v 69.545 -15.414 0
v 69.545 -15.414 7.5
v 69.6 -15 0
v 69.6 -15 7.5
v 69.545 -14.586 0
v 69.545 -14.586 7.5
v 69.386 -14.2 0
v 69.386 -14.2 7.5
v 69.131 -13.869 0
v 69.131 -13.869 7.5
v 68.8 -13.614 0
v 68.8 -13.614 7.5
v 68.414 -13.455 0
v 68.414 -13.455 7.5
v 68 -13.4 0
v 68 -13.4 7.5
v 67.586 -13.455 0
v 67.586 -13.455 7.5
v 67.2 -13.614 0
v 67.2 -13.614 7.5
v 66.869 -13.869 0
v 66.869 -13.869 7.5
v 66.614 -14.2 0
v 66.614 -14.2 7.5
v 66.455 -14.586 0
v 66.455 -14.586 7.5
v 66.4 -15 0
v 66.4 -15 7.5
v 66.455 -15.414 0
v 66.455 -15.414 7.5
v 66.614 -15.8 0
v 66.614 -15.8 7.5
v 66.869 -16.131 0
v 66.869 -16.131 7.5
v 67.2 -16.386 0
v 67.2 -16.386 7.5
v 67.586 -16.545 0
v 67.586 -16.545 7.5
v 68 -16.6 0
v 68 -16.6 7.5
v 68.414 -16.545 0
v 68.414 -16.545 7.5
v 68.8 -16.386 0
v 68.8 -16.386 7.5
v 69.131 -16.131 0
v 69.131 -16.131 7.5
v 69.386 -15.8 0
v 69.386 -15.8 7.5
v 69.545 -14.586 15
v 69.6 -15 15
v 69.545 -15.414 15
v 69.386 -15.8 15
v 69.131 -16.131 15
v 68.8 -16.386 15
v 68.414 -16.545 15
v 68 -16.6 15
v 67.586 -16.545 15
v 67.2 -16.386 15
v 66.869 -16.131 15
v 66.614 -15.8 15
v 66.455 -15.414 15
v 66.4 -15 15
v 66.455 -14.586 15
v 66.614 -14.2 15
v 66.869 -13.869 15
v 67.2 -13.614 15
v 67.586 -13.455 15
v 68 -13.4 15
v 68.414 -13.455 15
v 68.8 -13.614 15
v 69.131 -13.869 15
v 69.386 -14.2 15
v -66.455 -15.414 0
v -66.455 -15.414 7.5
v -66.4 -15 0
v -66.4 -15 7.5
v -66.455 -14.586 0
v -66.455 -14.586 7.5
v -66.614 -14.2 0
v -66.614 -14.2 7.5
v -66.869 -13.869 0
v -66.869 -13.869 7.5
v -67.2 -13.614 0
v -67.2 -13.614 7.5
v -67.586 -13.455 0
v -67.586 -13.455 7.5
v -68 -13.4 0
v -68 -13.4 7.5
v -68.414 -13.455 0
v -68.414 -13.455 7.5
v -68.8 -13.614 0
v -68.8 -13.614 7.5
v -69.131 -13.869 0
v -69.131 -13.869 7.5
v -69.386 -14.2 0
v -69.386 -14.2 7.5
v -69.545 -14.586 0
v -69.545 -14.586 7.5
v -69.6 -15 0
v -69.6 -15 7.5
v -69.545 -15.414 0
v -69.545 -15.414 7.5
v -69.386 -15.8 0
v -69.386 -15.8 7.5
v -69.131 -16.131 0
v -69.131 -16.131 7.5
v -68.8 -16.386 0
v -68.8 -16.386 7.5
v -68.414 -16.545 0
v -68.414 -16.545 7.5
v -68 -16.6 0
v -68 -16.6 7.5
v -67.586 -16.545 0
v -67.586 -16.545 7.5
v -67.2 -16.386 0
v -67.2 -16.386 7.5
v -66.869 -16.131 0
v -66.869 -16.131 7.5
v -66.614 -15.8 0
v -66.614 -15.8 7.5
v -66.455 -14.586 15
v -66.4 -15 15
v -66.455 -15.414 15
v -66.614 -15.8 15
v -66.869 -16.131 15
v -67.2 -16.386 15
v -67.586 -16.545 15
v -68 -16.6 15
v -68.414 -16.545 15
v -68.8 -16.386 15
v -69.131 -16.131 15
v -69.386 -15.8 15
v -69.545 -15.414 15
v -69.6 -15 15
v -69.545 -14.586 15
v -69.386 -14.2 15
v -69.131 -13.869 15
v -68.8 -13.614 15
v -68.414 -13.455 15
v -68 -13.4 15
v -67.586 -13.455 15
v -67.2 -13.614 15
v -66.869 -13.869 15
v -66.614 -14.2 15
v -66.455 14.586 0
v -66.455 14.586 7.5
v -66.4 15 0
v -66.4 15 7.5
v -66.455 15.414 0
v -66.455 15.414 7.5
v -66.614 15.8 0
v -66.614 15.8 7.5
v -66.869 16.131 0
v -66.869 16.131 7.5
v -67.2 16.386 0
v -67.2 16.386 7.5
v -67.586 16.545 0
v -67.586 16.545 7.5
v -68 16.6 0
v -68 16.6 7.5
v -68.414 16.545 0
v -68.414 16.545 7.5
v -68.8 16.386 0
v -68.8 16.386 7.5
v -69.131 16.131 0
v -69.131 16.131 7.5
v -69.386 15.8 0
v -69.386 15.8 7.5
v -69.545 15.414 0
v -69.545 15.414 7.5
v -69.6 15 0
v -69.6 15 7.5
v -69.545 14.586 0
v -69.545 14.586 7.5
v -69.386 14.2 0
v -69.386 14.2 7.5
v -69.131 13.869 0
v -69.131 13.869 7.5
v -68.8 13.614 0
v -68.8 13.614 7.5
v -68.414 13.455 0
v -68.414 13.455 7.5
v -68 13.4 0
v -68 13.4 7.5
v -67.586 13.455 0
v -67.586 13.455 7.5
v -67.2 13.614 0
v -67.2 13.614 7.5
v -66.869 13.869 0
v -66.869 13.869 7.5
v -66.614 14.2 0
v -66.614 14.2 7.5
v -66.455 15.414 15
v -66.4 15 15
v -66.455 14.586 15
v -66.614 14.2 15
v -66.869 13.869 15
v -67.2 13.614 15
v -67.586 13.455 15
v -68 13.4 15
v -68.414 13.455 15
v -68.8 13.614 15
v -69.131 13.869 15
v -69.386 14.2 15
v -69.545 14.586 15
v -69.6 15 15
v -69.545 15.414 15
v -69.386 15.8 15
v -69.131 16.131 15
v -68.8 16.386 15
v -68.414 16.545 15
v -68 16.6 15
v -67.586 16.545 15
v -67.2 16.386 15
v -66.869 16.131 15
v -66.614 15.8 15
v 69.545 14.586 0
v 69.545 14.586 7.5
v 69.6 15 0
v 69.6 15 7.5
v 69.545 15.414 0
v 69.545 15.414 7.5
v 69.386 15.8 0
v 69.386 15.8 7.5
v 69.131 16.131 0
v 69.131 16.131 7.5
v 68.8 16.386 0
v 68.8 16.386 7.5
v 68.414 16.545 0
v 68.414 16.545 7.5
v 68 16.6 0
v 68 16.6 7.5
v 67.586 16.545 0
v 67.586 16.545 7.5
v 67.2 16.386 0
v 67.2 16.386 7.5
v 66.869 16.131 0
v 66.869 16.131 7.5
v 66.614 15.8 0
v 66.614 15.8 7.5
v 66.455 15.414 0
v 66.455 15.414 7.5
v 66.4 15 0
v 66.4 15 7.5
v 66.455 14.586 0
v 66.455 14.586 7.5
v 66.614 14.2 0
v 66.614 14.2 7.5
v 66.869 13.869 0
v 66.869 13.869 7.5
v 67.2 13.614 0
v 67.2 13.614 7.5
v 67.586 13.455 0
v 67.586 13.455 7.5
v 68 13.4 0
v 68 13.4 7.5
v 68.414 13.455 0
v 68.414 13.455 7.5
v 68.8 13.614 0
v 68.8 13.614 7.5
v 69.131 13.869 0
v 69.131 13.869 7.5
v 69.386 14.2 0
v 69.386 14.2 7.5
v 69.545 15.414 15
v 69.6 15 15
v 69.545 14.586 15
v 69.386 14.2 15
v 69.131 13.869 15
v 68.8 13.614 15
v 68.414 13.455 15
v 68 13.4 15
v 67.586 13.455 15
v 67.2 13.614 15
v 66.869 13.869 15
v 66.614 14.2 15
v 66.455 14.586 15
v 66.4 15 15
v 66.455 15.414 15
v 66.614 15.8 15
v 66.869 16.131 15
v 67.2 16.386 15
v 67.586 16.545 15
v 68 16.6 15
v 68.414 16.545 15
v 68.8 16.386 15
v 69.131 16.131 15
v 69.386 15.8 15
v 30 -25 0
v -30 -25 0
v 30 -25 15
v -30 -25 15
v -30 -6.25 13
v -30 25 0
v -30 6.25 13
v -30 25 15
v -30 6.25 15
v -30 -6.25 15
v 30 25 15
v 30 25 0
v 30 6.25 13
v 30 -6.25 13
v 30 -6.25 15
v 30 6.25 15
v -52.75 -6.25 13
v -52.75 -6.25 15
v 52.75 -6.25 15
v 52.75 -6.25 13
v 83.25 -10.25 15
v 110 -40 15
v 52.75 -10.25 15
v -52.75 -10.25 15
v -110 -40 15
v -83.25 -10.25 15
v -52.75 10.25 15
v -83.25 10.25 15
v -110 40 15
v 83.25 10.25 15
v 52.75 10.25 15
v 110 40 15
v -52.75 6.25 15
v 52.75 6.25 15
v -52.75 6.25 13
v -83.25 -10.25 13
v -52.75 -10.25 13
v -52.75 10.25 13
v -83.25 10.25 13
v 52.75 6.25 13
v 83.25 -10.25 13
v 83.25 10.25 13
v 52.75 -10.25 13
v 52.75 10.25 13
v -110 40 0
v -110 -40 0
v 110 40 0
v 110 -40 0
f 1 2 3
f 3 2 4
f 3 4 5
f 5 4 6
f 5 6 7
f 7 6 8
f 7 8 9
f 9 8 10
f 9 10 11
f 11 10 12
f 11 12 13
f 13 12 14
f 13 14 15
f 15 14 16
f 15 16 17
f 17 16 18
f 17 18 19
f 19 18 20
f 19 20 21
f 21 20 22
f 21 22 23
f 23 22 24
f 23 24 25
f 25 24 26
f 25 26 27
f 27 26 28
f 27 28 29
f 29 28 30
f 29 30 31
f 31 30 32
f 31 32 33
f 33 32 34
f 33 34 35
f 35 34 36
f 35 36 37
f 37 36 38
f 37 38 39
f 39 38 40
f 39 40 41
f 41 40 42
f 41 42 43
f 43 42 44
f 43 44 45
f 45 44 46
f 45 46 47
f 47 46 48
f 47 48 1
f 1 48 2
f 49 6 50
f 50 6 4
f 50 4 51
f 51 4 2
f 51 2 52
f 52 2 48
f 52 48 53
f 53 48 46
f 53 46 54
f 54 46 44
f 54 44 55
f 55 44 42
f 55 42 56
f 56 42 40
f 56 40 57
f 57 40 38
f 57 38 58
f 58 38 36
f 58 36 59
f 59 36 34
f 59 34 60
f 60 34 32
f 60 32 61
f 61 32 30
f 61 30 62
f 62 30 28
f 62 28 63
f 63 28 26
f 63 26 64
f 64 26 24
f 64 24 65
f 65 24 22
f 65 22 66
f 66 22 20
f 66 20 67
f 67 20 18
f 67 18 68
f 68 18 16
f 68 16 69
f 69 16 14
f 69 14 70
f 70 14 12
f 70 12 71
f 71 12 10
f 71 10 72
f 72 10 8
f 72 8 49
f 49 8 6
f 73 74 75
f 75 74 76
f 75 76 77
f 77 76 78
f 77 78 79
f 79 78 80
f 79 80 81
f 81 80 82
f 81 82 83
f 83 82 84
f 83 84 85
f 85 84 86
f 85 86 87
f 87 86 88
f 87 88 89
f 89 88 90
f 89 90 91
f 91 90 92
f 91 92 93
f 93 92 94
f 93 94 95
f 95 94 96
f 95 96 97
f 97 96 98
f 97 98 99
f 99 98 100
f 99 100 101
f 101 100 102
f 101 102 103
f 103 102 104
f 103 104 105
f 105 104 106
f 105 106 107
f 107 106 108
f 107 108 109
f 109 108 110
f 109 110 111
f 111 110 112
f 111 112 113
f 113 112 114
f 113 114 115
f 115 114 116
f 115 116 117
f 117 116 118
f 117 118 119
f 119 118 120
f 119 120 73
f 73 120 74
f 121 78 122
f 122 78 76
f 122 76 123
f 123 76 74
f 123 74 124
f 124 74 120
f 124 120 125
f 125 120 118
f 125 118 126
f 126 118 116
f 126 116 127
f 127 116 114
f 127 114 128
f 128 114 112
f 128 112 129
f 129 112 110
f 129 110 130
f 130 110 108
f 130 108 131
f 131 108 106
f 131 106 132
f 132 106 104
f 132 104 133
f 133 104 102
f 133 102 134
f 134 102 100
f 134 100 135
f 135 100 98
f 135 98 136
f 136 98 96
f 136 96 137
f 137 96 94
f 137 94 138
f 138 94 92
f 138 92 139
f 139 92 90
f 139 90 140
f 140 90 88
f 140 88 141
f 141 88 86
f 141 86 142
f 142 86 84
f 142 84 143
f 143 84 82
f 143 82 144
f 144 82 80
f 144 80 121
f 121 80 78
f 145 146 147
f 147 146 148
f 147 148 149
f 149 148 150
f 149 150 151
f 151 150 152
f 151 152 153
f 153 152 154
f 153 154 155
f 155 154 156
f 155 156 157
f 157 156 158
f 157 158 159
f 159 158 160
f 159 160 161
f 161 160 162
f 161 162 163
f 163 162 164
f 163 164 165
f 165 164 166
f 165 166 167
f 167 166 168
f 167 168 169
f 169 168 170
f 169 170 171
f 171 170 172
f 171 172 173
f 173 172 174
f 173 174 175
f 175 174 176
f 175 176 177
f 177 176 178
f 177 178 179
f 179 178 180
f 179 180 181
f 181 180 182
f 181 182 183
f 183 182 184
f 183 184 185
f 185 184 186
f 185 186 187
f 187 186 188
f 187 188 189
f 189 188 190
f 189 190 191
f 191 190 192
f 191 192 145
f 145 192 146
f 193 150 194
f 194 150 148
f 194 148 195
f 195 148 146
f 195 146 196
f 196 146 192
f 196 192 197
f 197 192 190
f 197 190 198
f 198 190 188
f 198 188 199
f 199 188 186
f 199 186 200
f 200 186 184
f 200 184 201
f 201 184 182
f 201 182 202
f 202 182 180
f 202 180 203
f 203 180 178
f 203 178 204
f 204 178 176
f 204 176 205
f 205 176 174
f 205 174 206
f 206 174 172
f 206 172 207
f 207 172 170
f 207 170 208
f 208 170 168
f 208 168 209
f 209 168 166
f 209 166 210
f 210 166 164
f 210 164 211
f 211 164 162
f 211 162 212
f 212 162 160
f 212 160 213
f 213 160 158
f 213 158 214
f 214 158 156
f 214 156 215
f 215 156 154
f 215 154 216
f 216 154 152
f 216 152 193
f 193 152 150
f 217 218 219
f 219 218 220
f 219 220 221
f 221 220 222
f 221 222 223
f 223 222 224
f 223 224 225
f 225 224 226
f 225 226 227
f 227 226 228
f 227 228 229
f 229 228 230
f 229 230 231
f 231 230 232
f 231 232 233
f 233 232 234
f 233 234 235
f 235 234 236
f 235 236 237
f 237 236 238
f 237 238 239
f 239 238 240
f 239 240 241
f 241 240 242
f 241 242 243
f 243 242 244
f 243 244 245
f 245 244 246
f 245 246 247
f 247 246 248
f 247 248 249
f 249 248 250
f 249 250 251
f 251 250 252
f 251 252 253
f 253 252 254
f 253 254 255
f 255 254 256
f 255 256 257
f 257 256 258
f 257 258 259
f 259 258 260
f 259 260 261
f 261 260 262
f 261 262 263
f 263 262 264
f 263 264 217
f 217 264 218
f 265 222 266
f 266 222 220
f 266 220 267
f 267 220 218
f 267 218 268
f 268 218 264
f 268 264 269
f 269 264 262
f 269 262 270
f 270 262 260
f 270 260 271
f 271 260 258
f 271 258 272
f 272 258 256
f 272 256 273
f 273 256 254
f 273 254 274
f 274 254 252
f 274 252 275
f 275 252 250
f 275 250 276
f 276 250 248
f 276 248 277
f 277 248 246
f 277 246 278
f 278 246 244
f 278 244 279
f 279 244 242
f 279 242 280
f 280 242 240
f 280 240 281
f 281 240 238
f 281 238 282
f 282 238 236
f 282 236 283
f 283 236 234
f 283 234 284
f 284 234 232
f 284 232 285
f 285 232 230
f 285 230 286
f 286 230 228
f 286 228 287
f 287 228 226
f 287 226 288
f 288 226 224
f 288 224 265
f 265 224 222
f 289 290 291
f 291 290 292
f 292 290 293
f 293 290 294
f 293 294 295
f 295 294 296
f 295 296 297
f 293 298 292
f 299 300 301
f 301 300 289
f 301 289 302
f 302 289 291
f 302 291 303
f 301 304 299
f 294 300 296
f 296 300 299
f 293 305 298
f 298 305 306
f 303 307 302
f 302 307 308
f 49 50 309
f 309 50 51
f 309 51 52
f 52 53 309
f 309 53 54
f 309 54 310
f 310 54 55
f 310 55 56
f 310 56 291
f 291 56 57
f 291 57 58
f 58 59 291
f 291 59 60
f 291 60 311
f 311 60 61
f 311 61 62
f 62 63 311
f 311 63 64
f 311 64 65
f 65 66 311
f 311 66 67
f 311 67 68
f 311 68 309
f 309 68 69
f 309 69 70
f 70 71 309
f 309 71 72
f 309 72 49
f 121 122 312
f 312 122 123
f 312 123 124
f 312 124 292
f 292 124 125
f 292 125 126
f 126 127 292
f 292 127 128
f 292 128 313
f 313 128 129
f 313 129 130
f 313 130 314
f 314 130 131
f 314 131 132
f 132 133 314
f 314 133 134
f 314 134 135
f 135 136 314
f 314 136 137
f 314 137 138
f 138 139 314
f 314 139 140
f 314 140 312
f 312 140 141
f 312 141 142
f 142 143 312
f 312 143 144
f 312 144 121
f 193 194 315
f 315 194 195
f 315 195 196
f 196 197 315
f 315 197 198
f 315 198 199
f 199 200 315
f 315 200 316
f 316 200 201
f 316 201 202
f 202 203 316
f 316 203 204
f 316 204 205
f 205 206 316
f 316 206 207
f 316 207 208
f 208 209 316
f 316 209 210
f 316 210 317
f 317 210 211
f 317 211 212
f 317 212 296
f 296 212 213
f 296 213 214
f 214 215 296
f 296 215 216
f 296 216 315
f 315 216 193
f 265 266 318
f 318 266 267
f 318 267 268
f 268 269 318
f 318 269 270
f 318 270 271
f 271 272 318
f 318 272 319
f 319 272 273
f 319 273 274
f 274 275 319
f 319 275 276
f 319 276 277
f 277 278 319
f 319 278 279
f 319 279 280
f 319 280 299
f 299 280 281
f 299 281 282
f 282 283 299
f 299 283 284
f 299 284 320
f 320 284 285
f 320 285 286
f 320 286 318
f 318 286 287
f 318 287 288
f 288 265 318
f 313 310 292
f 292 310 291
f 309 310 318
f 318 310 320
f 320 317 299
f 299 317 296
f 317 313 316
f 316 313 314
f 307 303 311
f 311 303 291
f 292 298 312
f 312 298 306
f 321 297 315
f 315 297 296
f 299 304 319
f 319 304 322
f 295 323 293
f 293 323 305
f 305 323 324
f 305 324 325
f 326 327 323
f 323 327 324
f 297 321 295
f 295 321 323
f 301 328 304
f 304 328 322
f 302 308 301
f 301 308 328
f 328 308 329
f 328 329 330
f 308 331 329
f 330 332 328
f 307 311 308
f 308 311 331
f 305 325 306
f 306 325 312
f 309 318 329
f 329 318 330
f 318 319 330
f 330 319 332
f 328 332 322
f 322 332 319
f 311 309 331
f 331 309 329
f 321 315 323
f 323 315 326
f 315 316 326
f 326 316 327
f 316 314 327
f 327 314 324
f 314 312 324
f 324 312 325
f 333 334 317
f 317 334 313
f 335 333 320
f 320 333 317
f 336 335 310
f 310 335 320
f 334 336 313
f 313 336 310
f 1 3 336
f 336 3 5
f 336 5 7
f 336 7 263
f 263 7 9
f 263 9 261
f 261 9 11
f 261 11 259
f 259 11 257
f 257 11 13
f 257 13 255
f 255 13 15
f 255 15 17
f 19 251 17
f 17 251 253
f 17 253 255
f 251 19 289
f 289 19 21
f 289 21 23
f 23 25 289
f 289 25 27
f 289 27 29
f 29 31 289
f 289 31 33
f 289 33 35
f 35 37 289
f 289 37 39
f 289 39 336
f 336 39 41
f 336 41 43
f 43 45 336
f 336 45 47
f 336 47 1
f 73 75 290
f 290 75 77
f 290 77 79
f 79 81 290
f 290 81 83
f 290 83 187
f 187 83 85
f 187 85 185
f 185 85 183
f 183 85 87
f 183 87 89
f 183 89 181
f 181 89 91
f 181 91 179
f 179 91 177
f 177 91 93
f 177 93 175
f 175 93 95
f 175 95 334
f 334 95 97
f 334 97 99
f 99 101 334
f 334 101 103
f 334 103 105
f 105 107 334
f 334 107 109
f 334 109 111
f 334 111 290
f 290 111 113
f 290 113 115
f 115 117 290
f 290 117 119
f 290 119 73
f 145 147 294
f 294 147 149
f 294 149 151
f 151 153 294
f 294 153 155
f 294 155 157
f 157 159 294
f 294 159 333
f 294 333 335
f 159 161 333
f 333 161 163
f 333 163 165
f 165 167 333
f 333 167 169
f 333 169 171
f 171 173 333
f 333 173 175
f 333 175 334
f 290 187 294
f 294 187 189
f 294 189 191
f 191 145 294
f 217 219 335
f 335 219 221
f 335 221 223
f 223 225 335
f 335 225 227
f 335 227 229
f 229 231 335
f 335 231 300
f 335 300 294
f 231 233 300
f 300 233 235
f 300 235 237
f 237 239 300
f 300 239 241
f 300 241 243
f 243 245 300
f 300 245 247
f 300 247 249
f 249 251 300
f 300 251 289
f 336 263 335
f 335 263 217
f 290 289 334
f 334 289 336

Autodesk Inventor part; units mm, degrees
ref_plane "YZ Plane" through (0, 0, 0) normal (1, 0, 0) x (0, 1, 0)
ref_plane "XZ Plane" through (0, 0, 0) normal (0, 1, 0) x (-1, 0, 0)
sketch "Skizze1" plane through (0, 0, 0) normal (0, 0, 1) x (1, 0, 0)
  line L0 (-110, -40) -> (110, -40)
  line L1 (110, -40) -> (110, 40)
  line L2 (110, 40) -> (-110, 40)
  line L3 (-110, 40) -> (-110, -40)
extrude "Extrusion1" add sketch "Skizze1" along normal blind 15
ref_plane "Arbeitsebene1" through (0, 0, 15) normal (0, 0, 1) x (1, 0, 0)
sketch "Skizze2" plane through (0, 0, 15) normal (0, 0, 1) x (1, 0, 0)
  line L0 (-83.25, -10.25) -> (-52.75, -10.25)
  line L1 (-52.75, -10.25) -> (-52.75, 10.25)
  line L2 (-52.75, 10.25) -> (-83.25, 10.25)
  line L3 (-83.25, 10.25) -> (-83.25, -10.25)
extrude "Extrusion2" cut sketch "Skizze2" against normal blind 2
sketch "Skizze3" plane through (0, 0, 15) normal (0, 0, 1) x (1, 0, 0)
  line L0 (52.75, -10.25) -> (83.25, -10.25)
  line L1 (83.25, -10.25) -> (83.25, 10.25)
  line L2 (83.25, 10.25) -> (52.75, 10.25)
  line L3 (52.75, 10.25) -> (52.75, -10.25)
extrude "Extrusion3" cut sketch "Skizze3" against normal blind 2
sketch "Skizze4" plane through (0, 0, 15) normal (0, 0, 1) x (1, 0, 0)
  line L0 (-53.25, -6.25) -> (53.25, -6.25)
  line L1 (53.25, -6.25) -> (53.25, 6.25)
  line L2 (53.25, 6.25) -> (-53.25, 6.25)
  line L3 (-53.25, 6.25) -> (-53.25, -6.25)
extrude "Extrusion4" cut sketch "Skizze4" against normal blind 2
sketch "Skizze5" plane through (0, 0, 15) normal (0, 0, 1) x (1, 0, 0)
  line L0 (-30, -25) -> (30, -25)
  line L1 (30, -25) -> (30, 25)
  line L2 (30, 25) -> (-30, 25)
  line L3 (-30, 25) -> (-30, -25)
extrude "Extrusion5" cut sketch "Skizze5" against normal blind 16
sketch "Skizze6" plane through (0, 0, 15) normal (0, 0, 1) x (1, 0, 0)
  circle A0 centre (-68, -15) radius 1.6
  circle A1 centre (-68, 15) radius 1.6
  circle A2 centre (68, -15) radius 1.6
  circle A3 centre (68, 15) radius 1.6
extrude "Extrusion6" cut sketch "Skizze6" against normal blind 16
properties part number "Grundplatte_v2"
